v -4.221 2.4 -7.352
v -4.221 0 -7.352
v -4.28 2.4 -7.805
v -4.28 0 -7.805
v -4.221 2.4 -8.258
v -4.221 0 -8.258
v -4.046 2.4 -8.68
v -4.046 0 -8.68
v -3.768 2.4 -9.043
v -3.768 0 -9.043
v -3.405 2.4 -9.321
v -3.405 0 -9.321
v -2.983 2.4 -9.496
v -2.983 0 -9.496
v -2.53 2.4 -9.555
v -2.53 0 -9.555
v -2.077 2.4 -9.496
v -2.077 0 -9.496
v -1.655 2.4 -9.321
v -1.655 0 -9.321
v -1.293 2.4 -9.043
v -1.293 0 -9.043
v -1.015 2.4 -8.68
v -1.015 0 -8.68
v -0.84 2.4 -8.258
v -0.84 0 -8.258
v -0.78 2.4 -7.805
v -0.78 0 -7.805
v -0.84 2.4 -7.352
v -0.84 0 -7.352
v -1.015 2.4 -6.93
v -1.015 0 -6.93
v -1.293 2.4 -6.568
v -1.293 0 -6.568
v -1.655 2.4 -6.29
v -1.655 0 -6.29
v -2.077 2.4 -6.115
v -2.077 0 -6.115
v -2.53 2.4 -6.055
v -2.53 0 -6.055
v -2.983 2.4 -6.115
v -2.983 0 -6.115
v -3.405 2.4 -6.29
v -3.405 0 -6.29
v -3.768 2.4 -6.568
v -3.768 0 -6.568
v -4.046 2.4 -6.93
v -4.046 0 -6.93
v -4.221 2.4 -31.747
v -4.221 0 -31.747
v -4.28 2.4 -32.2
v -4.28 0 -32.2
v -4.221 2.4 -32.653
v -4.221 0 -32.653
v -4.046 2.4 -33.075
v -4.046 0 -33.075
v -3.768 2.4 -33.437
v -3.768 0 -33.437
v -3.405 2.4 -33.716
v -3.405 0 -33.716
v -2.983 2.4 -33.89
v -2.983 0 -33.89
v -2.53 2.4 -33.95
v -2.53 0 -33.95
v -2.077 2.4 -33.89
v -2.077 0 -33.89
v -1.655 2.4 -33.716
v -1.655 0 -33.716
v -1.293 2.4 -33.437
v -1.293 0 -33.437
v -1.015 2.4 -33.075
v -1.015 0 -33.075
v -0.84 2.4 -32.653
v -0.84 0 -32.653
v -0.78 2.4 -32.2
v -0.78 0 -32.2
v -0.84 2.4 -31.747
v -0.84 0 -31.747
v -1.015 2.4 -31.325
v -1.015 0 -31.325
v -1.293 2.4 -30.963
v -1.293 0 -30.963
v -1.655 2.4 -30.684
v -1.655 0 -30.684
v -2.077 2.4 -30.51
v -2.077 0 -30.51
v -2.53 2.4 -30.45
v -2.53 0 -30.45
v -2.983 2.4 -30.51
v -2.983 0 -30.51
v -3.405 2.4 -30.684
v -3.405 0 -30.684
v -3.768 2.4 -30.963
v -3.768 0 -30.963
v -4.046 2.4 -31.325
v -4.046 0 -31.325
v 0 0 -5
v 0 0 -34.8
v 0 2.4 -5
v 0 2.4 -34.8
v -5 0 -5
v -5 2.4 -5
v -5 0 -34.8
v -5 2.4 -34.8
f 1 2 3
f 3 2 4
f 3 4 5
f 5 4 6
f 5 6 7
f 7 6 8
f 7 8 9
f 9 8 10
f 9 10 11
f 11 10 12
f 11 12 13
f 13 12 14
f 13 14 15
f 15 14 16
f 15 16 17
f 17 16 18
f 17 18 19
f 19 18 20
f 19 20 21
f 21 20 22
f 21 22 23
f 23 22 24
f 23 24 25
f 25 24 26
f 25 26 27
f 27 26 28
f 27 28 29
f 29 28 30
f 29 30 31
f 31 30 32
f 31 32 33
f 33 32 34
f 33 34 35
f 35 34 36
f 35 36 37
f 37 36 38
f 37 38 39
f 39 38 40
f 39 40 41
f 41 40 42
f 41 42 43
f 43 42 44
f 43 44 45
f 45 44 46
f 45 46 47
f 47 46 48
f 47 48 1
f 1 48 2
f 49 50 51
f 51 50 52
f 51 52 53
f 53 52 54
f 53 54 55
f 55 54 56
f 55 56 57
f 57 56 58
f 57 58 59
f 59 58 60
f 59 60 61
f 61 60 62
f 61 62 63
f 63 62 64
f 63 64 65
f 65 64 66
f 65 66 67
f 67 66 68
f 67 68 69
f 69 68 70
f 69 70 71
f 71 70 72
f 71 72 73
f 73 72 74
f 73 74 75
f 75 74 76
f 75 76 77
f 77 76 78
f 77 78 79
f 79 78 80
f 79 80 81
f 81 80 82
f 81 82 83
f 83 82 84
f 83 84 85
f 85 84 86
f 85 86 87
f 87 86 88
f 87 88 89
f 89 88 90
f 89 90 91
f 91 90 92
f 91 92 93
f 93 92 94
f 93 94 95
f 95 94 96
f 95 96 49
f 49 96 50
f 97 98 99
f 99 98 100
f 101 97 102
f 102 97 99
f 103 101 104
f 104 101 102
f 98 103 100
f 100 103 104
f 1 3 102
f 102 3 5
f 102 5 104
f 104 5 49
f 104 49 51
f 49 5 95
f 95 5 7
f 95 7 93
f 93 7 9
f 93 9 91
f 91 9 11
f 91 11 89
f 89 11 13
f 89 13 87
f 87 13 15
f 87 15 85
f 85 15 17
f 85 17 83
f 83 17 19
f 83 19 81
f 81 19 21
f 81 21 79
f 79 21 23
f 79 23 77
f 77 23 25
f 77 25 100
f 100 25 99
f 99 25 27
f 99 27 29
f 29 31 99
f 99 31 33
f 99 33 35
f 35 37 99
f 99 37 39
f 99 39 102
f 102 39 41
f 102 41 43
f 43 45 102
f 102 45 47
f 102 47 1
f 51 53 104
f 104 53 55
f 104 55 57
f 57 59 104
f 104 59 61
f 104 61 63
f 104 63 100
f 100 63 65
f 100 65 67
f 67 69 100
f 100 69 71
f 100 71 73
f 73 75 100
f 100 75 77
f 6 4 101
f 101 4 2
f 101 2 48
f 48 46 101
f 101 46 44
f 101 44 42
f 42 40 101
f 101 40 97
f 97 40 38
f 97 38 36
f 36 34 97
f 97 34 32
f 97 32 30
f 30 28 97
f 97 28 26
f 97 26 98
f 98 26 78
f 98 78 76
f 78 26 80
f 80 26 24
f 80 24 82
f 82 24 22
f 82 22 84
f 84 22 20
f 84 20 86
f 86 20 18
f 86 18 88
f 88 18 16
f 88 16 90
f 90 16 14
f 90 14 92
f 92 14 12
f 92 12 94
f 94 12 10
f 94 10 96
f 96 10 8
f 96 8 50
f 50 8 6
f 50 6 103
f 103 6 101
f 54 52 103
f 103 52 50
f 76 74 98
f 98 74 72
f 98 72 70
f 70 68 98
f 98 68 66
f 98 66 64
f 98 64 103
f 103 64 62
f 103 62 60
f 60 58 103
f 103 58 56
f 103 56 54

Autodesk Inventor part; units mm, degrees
ref_plane "YZ Plane" through (0, 0, 0) normal (1, 0, 0) x (0, 1, 0)
ref_plane "XZ Plane" through (0, 0, 0) normal (0, 1, 0) x (-1, 0, 0)
ref_plane "XY Plane" through (0, 0, 0) normal (0, 0, 1) x (1, 0, 0)
sketch "Эскиз2" plane through (0, 0, 0) normal (0, 1, 0) x (-1, 0, 0)
  circle A0 centre (2.5304, -32.2) radius 1.75
  line L0 (0, -30.0054) -> (5, -30.0054)
  line L1 (0, -34.8) -> (0, -30.0054)
  line L2 (5, -34.8) -> (0, -34.8)
  line L3 (5, -30.0054) -> (5, -34.8)
  line L4 (0, -16) -> (5, -16)
  line L5 (0, -24.0054) -> (0, -16)
  line L6 (5, -24.0054) -> (0, -24.0054)
  line L7 (5, -16) -> (5, -24.0054)
  circle A1 centre (2.5304, -7.8054) radius 1.75
  line L8 (5, -10) -> (0, -10)
  line L9 (5, -5) -> (5, -10)
  line L10 (0, -5) -> (5, -5)
  line L11 (0, -10) -> (0, -5)
  line L12 (5, -5) -> (0, -5)
  line L13 (0, -5) -> (0, -34.8)
  line L14 (0, -34.8) -> (5, -34.8)
  line L15 (5, -34.8) -> (5, -5)
  point P0 (0, 0)
  point P1 (5, 0)
extrude "Выдавливание2" add sketch "Эскиз2" along normal blind 2.4
properties part number "КВ33.044.406 - Прижим ремня" material "Пластик АБС"
